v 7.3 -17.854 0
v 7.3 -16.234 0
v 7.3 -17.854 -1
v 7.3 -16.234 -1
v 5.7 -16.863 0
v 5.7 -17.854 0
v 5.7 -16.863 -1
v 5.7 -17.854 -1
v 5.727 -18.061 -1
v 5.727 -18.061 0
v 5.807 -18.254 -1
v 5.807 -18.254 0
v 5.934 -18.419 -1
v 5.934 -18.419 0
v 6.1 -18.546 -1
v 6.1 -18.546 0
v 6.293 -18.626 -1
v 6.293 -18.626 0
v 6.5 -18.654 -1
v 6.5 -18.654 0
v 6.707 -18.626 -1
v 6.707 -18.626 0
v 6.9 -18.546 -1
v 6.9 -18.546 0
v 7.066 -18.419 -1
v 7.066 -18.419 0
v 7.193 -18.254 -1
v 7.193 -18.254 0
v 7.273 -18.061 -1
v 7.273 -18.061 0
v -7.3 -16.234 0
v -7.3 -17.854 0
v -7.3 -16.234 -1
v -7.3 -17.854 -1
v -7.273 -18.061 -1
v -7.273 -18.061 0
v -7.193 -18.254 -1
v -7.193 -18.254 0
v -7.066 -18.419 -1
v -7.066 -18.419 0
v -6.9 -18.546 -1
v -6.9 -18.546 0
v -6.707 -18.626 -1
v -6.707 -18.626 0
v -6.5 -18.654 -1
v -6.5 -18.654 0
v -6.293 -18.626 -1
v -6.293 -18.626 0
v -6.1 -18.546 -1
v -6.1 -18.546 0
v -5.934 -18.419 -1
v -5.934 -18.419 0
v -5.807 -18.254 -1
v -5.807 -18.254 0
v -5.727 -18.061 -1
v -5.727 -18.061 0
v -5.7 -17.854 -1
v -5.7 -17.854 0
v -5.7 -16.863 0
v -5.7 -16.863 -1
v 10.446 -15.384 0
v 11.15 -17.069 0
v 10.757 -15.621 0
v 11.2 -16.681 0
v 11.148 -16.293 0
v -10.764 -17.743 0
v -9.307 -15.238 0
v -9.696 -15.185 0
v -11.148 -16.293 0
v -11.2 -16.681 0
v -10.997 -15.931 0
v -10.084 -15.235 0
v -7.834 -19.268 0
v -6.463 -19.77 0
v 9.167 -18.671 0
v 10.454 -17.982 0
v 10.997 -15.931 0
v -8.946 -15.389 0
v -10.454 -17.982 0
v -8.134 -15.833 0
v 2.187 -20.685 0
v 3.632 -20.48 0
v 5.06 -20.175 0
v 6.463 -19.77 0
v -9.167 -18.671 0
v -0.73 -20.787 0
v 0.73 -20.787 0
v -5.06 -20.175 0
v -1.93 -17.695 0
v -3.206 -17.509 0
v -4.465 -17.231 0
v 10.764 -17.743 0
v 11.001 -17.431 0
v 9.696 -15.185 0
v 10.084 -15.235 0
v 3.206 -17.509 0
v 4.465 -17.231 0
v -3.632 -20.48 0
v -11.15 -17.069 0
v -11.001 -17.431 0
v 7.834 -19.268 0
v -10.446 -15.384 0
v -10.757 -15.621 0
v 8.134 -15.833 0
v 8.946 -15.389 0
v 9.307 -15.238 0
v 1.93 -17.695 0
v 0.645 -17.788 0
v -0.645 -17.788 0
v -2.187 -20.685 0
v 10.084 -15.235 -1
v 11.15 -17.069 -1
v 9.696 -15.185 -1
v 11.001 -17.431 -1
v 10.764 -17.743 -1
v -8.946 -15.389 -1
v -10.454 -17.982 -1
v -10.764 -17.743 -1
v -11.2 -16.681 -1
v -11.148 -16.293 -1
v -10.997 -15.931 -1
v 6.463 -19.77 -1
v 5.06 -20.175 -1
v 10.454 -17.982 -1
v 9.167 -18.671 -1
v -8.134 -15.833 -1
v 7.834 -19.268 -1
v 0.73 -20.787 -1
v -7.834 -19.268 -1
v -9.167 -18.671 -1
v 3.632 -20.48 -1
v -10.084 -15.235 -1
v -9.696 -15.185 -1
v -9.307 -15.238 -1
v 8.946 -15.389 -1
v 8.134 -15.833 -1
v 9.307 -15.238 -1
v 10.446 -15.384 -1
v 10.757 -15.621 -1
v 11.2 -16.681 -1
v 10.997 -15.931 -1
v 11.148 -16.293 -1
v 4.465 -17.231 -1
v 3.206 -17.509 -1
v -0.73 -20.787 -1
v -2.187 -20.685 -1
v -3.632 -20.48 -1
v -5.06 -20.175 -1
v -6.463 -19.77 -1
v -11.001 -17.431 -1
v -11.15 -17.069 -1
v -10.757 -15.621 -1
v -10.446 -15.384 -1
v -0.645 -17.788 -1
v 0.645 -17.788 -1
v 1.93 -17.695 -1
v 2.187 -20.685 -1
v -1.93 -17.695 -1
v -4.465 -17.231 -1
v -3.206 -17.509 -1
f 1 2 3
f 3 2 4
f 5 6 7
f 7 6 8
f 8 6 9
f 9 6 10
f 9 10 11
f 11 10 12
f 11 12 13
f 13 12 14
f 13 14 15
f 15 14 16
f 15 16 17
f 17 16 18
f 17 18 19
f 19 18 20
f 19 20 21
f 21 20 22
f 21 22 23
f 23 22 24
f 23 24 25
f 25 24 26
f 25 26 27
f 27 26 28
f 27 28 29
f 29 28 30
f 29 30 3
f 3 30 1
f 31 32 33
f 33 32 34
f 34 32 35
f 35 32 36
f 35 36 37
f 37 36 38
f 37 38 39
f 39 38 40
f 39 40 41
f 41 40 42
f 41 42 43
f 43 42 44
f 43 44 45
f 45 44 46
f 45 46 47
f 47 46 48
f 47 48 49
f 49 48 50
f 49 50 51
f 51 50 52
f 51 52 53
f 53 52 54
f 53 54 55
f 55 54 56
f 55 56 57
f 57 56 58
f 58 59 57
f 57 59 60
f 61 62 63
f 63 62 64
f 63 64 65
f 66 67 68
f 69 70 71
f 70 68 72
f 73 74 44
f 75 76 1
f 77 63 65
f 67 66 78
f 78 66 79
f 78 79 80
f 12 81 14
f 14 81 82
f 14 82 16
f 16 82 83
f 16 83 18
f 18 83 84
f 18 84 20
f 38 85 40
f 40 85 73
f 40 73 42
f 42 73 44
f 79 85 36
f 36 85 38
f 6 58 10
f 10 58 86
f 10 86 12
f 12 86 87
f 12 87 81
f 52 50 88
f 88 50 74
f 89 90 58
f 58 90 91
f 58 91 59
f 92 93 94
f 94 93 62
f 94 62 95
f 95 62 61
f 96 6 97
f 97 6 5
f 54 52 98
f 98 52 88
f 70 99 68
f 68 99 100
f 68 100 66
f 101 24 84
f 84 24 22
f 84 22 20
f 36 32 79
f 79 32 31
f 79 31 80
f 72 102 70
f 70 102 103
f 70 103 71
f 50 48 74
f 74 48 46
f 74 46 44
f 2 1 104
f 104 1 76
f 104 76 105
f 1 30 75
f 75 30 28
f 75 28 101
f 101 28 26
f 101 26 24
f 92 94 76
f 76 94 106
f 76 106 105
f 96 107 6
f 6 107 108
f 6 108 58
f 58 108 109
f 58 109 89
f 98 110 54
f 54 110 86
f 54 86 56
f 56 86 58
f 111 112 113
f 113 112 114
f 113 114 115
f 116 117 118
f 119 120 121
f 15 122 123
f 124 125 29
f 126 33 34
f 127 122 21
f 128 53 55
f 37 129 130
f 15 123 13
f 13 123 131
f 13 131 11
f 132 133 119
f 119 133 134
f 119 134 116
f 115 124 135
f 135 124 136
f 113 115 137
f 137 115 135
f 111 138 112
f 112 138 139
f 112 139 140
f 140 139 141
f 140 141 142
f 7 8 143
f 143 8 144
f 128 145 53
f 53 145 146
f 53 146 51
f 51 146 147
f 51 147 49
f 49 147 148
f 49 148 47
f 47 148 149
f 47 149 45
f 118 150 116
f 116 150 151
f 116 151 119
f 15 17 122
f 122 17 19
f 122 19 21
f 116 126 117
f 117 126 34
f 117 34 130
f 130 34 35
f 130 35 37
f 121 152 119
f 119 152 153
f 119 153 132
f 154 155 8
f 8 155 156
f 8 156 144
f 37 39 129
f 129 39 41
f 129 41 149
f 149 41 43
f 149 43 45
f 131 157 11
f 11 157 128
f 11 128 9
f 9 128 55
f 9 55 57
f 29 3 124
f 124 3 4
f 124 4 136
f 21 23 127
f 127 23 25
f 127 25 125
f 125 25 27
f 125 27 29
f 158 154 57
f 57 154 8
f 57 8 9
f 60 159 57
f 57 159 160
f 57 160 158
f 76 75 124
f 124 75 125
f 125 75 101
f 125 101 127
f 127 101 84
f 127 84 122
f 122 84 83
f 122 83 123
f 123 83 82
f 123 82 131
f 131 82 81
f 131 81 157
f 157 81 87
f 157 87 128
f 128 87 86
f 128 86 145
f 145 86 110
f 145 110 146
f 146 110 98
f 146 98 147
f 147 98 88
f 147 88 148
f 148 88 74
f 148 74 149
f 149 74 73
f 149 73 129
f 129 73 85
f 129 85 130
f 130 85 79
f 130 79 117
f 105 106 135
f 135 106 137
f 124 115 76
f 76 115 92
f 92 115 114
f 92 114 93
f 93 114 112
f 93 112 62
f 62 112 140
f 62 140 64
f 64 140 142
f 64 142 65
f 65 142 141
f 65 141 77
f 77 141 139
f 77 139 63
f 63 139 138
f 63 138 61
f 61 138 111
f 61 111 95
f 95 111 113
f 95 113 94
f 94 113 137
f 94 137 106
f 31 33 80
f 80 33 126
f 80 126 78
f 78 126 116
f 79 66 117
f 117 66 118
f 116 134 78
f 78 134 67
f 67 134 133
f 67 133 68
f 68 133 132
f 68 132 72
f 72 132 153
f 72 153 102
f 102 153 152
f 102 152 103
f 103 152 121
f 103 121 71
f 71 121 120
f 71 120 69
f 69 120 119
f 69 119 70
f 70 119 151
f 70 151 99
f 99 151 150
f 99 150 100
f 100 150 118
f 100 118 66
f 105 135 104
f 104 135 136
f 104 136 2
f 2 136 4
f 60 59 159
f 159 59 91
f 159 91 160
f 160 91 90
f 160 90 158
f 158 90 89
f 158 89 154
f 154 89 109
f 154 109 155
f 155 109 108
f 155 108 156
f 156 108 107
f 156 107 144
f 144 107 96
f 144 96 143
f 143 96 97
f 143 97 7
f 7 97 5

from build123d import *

# Parameters (mm, degrees)
BOSS_EXTRUDE1_DEPTH = 1
CUT_EXTRUDE1_DEPTH  = 2


with BuildPart() as part:
    # Sketch1 → Boss-Extrude1 (new body)
    with BuildSketch(Plane.XY):
        with BuildLine():
            ThreePointArc((-10.45388601, -17.982109645), (0, -20.8), (10.45388601, -17.982109645))
            ThreePointArc((10.45388601, -17.982109645), (10.996786753, -15.931436881), (8.94611399, -15.388536138))
            ThreePointArc((8.94611399, -15.388536138), (0, -17.8), (-8.94611399, -15.388536138))
            ThreePointArc((-8.94611399, -15.388536138), (-10.996786753, -15.931436881), (-10.45388601, -17.982109645))
        make_face()
    extrude(amount=-BOSS_EXTRUDE1_DEPTH)

    # Sketch2 → Cut-Extrude1 (cut, through all)
    with BuildSketch(Plane.XY):
        with BuildLine():
            Line((-7.3, -17.853571071), (-7.3, -16.23422311))
            ThreePointArc((-7.3, -16.23422311), (-6.507590932, -16.567777771), (-5.7, -16.862680688))
            Line((-5.7, -16.862680688), (-5.7, -17.853571071))
            ThreePointArc((-5.7, -17.853571071), (-6.5, -18.653571071), (-7.3, -17.853571071))
        make_face()
        with BuildLine():
            Line((5.7, -17.853571071), (5.7, -16.862680688))
            ThreePointArc((5.7, -16.862680688), (6.507590932, -16.567777771), (7.3, -16.23422311))
            Line((7.3, -16.23422311), (7.3, -17.853571071))
            ThreePointArc((7.3, -17.853571071), (6.5, -18.653571071), (5.7, -17.853571071))
        make_face()
    extrude(amount=-CUT_EXTRUDE1_DEPTH, mode=Mode.SUBTRACT)


solid = part.part
